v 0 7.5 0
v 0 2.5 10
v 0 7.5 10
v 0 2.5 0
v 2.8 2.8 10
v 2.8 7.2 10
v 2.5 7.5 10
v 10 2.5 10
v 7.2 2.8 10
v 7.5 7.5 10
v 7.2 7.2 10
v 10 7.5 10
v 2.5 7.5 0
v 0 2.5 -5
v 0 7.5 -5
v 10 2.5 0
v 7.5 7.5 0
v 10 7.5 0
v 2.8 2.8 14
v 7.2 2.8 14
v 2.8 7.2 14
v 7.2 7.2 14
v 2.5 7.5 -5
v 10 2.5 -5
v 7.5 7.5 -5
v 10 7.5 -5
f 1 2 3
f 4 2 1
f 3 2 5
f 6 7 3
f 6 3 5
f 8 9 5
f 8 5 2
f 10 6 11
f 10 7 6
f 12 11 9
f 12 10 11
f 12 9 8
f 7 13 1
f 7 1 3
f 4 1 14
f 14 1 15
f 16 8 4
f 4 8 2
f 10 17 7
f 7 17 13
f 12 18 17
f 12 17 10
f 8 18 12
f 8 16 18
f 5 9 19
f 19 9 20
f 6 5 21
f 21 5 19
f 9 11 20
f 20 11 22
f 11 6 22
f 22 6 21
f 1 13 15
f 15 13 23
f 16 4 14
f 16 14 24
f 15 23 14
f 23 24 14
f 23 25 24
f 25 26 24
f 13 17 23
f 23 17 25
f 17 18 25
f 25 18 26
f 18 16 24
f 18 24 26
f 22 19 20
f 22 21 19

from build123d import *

# Parameters (mm, degrees)
BOX_W              = 10
BOX_H              = 10
BOX_DEPTH          = 10
SKETCH_W           = 4.4
SKETCH_H           = 4.4
PAD_DEPTH          = 4
PAD_FACE4_W        = 10
PAD_FACE4_H        = 10
POCKET_DEPTH       = 2.5
POCKET_FACE5_W     = 10
POCKET_FACE5_H     = 10
POCKET001_DEPTH    = 2.5
SKETCH001_W        = 5
SKETCH001_H        = 10
PAD001_DEPTH       = 10
SKETCH002_W        = 4.4
SKETCH002_H        = 4.4
PAD002_DEPTH       = 4
PAD002_FACE22_W    = 4.4
PAD002_FACE22_H    = 4.4
POCKET002_DEPTH    = 5
POCKET002_FACE16_W = 5
POCKET002_FACE16_H = 10
POCKET003_DEPTH    = 7.5
POCKET003_FACE15_W = 5
POCKET003_FACE15_H = 10
POCKET004_DEPTH    = 2.5
PAD003_DEPTH       = 5


with BuildPart() as part:
    # Box → Box (new body)
    with BuildSketch(Plane.XY):
        with Locations((5, 5)):
            Rectangle(BOX_W, BOX_H)
    extrude(amount=BOX_DEPTH)

    # Sketch (on Face6 of BaseFeature) → Pad (new body)
    with BuildSketch(Plane.XY.offset(10)):
        with Locations((5, 5)):
            Rectangle(SKETCH_W, SKETCH_H)
    extrude(amount=PAD_DEPTH)

    # Pad Face4 → Pocket (cut)
    with BuildSketch(Plane(origin=(5, 10, 5), x_dir=(1, 0, 0), z_dir=(0, 1, 0))):
        Rectangle(PAD_FACE4_W, PAD_FACE4_H)
    extrude(amount=-POCKET_DEPTH, mode=Mode.SUBTRACT)

    # Pocket Face5 → Pocket001 (cut)
    with BuildSketch(Plane(origin=(5, 0, 5), x_dir=(-1, 0, 0), z_dir=(0, -1, 0))):
        Rectangle(POCKET_FACE5_W, POCKET_FACE5_H)
    extrude(amount=-POCKET001_DEPTH, mode=Mode.SUBTRACT)

    # Sketch001 (on Face3 of Pocket001) → Pad001 (join)
    with BuildSketch(Plane(origin=(0, 7.5, 0), x_dir=(-1, 0, 0), z_dir=(0, 1, 0))):
        with Locations((-5, 5)):
            Rectangle(SKETCH001_W, SKETCH001_H)
    extrude(amount=PAD001_DEPTH)

    # Sketch002 (on Face6 of Pad001) → Pad002 (join)
    with BuildSketch(Plane.XY.offset(10)):
        with Locations((5, 12.5)):
            Rectangle(SKETCH002_W, SKETCH002_H)
    extrude(amount=PAD002_DEPTH)

    # Pad002 Face22 → Pocket002 (cut)
    with BuildSketch(Plane(origin=(5, 12.5, 14), x_dir=(0, 1, 0), z_dir=(0, 0, 1))):
        Rectangle(PAD002_FACE22_W, PAD002_FACE22_H)
    extrude(amount=-POCKET002_DEPTH, mode=Mode.SUBTRACT)

    # Pocket002 Face16 → Pocket003 (cut)
    with BuildSketch(Plane(origin=(5, 17.5, 5), x_dir=(1, 0, 0), z_dir=(0, 1, 0))):
        Rectangle(POCKET002_FACE16_W, POCKET002_FACE16_H)
    extrude(amount=-POCKET003_DEPTH, mode=Mode.SUBTRACT)

    # Pocket003 Face15 → Pocket004 (cut)
    with BuildSketch(Plane(origin=(5, 10, 5), x_dir=(1, 0, 0), z_dir=(0, 1, 0))):
        Rectangle(POCKET003_FACE15_W, POCKET003_FACE15_H)
    extrude(amount=-POCKET004_DEPTH, mode=Mode.SUBTRACT)

    # Pocket004 Face4 → Pad003 (add)
    with BuildSketch(Plane(origin=(5, 5, 0), x_dir=(0, -1, 0), z_dir=(0, 0, -1))):
        Polygon((2.5, 5), (-2.5, 5), (-2.5, 2.5), (-2.5, -2.5), (-2.5, -5), (2.5, -5), align=None)
    extrude(amount=PAD003_DEPTH)


solid = part.part
